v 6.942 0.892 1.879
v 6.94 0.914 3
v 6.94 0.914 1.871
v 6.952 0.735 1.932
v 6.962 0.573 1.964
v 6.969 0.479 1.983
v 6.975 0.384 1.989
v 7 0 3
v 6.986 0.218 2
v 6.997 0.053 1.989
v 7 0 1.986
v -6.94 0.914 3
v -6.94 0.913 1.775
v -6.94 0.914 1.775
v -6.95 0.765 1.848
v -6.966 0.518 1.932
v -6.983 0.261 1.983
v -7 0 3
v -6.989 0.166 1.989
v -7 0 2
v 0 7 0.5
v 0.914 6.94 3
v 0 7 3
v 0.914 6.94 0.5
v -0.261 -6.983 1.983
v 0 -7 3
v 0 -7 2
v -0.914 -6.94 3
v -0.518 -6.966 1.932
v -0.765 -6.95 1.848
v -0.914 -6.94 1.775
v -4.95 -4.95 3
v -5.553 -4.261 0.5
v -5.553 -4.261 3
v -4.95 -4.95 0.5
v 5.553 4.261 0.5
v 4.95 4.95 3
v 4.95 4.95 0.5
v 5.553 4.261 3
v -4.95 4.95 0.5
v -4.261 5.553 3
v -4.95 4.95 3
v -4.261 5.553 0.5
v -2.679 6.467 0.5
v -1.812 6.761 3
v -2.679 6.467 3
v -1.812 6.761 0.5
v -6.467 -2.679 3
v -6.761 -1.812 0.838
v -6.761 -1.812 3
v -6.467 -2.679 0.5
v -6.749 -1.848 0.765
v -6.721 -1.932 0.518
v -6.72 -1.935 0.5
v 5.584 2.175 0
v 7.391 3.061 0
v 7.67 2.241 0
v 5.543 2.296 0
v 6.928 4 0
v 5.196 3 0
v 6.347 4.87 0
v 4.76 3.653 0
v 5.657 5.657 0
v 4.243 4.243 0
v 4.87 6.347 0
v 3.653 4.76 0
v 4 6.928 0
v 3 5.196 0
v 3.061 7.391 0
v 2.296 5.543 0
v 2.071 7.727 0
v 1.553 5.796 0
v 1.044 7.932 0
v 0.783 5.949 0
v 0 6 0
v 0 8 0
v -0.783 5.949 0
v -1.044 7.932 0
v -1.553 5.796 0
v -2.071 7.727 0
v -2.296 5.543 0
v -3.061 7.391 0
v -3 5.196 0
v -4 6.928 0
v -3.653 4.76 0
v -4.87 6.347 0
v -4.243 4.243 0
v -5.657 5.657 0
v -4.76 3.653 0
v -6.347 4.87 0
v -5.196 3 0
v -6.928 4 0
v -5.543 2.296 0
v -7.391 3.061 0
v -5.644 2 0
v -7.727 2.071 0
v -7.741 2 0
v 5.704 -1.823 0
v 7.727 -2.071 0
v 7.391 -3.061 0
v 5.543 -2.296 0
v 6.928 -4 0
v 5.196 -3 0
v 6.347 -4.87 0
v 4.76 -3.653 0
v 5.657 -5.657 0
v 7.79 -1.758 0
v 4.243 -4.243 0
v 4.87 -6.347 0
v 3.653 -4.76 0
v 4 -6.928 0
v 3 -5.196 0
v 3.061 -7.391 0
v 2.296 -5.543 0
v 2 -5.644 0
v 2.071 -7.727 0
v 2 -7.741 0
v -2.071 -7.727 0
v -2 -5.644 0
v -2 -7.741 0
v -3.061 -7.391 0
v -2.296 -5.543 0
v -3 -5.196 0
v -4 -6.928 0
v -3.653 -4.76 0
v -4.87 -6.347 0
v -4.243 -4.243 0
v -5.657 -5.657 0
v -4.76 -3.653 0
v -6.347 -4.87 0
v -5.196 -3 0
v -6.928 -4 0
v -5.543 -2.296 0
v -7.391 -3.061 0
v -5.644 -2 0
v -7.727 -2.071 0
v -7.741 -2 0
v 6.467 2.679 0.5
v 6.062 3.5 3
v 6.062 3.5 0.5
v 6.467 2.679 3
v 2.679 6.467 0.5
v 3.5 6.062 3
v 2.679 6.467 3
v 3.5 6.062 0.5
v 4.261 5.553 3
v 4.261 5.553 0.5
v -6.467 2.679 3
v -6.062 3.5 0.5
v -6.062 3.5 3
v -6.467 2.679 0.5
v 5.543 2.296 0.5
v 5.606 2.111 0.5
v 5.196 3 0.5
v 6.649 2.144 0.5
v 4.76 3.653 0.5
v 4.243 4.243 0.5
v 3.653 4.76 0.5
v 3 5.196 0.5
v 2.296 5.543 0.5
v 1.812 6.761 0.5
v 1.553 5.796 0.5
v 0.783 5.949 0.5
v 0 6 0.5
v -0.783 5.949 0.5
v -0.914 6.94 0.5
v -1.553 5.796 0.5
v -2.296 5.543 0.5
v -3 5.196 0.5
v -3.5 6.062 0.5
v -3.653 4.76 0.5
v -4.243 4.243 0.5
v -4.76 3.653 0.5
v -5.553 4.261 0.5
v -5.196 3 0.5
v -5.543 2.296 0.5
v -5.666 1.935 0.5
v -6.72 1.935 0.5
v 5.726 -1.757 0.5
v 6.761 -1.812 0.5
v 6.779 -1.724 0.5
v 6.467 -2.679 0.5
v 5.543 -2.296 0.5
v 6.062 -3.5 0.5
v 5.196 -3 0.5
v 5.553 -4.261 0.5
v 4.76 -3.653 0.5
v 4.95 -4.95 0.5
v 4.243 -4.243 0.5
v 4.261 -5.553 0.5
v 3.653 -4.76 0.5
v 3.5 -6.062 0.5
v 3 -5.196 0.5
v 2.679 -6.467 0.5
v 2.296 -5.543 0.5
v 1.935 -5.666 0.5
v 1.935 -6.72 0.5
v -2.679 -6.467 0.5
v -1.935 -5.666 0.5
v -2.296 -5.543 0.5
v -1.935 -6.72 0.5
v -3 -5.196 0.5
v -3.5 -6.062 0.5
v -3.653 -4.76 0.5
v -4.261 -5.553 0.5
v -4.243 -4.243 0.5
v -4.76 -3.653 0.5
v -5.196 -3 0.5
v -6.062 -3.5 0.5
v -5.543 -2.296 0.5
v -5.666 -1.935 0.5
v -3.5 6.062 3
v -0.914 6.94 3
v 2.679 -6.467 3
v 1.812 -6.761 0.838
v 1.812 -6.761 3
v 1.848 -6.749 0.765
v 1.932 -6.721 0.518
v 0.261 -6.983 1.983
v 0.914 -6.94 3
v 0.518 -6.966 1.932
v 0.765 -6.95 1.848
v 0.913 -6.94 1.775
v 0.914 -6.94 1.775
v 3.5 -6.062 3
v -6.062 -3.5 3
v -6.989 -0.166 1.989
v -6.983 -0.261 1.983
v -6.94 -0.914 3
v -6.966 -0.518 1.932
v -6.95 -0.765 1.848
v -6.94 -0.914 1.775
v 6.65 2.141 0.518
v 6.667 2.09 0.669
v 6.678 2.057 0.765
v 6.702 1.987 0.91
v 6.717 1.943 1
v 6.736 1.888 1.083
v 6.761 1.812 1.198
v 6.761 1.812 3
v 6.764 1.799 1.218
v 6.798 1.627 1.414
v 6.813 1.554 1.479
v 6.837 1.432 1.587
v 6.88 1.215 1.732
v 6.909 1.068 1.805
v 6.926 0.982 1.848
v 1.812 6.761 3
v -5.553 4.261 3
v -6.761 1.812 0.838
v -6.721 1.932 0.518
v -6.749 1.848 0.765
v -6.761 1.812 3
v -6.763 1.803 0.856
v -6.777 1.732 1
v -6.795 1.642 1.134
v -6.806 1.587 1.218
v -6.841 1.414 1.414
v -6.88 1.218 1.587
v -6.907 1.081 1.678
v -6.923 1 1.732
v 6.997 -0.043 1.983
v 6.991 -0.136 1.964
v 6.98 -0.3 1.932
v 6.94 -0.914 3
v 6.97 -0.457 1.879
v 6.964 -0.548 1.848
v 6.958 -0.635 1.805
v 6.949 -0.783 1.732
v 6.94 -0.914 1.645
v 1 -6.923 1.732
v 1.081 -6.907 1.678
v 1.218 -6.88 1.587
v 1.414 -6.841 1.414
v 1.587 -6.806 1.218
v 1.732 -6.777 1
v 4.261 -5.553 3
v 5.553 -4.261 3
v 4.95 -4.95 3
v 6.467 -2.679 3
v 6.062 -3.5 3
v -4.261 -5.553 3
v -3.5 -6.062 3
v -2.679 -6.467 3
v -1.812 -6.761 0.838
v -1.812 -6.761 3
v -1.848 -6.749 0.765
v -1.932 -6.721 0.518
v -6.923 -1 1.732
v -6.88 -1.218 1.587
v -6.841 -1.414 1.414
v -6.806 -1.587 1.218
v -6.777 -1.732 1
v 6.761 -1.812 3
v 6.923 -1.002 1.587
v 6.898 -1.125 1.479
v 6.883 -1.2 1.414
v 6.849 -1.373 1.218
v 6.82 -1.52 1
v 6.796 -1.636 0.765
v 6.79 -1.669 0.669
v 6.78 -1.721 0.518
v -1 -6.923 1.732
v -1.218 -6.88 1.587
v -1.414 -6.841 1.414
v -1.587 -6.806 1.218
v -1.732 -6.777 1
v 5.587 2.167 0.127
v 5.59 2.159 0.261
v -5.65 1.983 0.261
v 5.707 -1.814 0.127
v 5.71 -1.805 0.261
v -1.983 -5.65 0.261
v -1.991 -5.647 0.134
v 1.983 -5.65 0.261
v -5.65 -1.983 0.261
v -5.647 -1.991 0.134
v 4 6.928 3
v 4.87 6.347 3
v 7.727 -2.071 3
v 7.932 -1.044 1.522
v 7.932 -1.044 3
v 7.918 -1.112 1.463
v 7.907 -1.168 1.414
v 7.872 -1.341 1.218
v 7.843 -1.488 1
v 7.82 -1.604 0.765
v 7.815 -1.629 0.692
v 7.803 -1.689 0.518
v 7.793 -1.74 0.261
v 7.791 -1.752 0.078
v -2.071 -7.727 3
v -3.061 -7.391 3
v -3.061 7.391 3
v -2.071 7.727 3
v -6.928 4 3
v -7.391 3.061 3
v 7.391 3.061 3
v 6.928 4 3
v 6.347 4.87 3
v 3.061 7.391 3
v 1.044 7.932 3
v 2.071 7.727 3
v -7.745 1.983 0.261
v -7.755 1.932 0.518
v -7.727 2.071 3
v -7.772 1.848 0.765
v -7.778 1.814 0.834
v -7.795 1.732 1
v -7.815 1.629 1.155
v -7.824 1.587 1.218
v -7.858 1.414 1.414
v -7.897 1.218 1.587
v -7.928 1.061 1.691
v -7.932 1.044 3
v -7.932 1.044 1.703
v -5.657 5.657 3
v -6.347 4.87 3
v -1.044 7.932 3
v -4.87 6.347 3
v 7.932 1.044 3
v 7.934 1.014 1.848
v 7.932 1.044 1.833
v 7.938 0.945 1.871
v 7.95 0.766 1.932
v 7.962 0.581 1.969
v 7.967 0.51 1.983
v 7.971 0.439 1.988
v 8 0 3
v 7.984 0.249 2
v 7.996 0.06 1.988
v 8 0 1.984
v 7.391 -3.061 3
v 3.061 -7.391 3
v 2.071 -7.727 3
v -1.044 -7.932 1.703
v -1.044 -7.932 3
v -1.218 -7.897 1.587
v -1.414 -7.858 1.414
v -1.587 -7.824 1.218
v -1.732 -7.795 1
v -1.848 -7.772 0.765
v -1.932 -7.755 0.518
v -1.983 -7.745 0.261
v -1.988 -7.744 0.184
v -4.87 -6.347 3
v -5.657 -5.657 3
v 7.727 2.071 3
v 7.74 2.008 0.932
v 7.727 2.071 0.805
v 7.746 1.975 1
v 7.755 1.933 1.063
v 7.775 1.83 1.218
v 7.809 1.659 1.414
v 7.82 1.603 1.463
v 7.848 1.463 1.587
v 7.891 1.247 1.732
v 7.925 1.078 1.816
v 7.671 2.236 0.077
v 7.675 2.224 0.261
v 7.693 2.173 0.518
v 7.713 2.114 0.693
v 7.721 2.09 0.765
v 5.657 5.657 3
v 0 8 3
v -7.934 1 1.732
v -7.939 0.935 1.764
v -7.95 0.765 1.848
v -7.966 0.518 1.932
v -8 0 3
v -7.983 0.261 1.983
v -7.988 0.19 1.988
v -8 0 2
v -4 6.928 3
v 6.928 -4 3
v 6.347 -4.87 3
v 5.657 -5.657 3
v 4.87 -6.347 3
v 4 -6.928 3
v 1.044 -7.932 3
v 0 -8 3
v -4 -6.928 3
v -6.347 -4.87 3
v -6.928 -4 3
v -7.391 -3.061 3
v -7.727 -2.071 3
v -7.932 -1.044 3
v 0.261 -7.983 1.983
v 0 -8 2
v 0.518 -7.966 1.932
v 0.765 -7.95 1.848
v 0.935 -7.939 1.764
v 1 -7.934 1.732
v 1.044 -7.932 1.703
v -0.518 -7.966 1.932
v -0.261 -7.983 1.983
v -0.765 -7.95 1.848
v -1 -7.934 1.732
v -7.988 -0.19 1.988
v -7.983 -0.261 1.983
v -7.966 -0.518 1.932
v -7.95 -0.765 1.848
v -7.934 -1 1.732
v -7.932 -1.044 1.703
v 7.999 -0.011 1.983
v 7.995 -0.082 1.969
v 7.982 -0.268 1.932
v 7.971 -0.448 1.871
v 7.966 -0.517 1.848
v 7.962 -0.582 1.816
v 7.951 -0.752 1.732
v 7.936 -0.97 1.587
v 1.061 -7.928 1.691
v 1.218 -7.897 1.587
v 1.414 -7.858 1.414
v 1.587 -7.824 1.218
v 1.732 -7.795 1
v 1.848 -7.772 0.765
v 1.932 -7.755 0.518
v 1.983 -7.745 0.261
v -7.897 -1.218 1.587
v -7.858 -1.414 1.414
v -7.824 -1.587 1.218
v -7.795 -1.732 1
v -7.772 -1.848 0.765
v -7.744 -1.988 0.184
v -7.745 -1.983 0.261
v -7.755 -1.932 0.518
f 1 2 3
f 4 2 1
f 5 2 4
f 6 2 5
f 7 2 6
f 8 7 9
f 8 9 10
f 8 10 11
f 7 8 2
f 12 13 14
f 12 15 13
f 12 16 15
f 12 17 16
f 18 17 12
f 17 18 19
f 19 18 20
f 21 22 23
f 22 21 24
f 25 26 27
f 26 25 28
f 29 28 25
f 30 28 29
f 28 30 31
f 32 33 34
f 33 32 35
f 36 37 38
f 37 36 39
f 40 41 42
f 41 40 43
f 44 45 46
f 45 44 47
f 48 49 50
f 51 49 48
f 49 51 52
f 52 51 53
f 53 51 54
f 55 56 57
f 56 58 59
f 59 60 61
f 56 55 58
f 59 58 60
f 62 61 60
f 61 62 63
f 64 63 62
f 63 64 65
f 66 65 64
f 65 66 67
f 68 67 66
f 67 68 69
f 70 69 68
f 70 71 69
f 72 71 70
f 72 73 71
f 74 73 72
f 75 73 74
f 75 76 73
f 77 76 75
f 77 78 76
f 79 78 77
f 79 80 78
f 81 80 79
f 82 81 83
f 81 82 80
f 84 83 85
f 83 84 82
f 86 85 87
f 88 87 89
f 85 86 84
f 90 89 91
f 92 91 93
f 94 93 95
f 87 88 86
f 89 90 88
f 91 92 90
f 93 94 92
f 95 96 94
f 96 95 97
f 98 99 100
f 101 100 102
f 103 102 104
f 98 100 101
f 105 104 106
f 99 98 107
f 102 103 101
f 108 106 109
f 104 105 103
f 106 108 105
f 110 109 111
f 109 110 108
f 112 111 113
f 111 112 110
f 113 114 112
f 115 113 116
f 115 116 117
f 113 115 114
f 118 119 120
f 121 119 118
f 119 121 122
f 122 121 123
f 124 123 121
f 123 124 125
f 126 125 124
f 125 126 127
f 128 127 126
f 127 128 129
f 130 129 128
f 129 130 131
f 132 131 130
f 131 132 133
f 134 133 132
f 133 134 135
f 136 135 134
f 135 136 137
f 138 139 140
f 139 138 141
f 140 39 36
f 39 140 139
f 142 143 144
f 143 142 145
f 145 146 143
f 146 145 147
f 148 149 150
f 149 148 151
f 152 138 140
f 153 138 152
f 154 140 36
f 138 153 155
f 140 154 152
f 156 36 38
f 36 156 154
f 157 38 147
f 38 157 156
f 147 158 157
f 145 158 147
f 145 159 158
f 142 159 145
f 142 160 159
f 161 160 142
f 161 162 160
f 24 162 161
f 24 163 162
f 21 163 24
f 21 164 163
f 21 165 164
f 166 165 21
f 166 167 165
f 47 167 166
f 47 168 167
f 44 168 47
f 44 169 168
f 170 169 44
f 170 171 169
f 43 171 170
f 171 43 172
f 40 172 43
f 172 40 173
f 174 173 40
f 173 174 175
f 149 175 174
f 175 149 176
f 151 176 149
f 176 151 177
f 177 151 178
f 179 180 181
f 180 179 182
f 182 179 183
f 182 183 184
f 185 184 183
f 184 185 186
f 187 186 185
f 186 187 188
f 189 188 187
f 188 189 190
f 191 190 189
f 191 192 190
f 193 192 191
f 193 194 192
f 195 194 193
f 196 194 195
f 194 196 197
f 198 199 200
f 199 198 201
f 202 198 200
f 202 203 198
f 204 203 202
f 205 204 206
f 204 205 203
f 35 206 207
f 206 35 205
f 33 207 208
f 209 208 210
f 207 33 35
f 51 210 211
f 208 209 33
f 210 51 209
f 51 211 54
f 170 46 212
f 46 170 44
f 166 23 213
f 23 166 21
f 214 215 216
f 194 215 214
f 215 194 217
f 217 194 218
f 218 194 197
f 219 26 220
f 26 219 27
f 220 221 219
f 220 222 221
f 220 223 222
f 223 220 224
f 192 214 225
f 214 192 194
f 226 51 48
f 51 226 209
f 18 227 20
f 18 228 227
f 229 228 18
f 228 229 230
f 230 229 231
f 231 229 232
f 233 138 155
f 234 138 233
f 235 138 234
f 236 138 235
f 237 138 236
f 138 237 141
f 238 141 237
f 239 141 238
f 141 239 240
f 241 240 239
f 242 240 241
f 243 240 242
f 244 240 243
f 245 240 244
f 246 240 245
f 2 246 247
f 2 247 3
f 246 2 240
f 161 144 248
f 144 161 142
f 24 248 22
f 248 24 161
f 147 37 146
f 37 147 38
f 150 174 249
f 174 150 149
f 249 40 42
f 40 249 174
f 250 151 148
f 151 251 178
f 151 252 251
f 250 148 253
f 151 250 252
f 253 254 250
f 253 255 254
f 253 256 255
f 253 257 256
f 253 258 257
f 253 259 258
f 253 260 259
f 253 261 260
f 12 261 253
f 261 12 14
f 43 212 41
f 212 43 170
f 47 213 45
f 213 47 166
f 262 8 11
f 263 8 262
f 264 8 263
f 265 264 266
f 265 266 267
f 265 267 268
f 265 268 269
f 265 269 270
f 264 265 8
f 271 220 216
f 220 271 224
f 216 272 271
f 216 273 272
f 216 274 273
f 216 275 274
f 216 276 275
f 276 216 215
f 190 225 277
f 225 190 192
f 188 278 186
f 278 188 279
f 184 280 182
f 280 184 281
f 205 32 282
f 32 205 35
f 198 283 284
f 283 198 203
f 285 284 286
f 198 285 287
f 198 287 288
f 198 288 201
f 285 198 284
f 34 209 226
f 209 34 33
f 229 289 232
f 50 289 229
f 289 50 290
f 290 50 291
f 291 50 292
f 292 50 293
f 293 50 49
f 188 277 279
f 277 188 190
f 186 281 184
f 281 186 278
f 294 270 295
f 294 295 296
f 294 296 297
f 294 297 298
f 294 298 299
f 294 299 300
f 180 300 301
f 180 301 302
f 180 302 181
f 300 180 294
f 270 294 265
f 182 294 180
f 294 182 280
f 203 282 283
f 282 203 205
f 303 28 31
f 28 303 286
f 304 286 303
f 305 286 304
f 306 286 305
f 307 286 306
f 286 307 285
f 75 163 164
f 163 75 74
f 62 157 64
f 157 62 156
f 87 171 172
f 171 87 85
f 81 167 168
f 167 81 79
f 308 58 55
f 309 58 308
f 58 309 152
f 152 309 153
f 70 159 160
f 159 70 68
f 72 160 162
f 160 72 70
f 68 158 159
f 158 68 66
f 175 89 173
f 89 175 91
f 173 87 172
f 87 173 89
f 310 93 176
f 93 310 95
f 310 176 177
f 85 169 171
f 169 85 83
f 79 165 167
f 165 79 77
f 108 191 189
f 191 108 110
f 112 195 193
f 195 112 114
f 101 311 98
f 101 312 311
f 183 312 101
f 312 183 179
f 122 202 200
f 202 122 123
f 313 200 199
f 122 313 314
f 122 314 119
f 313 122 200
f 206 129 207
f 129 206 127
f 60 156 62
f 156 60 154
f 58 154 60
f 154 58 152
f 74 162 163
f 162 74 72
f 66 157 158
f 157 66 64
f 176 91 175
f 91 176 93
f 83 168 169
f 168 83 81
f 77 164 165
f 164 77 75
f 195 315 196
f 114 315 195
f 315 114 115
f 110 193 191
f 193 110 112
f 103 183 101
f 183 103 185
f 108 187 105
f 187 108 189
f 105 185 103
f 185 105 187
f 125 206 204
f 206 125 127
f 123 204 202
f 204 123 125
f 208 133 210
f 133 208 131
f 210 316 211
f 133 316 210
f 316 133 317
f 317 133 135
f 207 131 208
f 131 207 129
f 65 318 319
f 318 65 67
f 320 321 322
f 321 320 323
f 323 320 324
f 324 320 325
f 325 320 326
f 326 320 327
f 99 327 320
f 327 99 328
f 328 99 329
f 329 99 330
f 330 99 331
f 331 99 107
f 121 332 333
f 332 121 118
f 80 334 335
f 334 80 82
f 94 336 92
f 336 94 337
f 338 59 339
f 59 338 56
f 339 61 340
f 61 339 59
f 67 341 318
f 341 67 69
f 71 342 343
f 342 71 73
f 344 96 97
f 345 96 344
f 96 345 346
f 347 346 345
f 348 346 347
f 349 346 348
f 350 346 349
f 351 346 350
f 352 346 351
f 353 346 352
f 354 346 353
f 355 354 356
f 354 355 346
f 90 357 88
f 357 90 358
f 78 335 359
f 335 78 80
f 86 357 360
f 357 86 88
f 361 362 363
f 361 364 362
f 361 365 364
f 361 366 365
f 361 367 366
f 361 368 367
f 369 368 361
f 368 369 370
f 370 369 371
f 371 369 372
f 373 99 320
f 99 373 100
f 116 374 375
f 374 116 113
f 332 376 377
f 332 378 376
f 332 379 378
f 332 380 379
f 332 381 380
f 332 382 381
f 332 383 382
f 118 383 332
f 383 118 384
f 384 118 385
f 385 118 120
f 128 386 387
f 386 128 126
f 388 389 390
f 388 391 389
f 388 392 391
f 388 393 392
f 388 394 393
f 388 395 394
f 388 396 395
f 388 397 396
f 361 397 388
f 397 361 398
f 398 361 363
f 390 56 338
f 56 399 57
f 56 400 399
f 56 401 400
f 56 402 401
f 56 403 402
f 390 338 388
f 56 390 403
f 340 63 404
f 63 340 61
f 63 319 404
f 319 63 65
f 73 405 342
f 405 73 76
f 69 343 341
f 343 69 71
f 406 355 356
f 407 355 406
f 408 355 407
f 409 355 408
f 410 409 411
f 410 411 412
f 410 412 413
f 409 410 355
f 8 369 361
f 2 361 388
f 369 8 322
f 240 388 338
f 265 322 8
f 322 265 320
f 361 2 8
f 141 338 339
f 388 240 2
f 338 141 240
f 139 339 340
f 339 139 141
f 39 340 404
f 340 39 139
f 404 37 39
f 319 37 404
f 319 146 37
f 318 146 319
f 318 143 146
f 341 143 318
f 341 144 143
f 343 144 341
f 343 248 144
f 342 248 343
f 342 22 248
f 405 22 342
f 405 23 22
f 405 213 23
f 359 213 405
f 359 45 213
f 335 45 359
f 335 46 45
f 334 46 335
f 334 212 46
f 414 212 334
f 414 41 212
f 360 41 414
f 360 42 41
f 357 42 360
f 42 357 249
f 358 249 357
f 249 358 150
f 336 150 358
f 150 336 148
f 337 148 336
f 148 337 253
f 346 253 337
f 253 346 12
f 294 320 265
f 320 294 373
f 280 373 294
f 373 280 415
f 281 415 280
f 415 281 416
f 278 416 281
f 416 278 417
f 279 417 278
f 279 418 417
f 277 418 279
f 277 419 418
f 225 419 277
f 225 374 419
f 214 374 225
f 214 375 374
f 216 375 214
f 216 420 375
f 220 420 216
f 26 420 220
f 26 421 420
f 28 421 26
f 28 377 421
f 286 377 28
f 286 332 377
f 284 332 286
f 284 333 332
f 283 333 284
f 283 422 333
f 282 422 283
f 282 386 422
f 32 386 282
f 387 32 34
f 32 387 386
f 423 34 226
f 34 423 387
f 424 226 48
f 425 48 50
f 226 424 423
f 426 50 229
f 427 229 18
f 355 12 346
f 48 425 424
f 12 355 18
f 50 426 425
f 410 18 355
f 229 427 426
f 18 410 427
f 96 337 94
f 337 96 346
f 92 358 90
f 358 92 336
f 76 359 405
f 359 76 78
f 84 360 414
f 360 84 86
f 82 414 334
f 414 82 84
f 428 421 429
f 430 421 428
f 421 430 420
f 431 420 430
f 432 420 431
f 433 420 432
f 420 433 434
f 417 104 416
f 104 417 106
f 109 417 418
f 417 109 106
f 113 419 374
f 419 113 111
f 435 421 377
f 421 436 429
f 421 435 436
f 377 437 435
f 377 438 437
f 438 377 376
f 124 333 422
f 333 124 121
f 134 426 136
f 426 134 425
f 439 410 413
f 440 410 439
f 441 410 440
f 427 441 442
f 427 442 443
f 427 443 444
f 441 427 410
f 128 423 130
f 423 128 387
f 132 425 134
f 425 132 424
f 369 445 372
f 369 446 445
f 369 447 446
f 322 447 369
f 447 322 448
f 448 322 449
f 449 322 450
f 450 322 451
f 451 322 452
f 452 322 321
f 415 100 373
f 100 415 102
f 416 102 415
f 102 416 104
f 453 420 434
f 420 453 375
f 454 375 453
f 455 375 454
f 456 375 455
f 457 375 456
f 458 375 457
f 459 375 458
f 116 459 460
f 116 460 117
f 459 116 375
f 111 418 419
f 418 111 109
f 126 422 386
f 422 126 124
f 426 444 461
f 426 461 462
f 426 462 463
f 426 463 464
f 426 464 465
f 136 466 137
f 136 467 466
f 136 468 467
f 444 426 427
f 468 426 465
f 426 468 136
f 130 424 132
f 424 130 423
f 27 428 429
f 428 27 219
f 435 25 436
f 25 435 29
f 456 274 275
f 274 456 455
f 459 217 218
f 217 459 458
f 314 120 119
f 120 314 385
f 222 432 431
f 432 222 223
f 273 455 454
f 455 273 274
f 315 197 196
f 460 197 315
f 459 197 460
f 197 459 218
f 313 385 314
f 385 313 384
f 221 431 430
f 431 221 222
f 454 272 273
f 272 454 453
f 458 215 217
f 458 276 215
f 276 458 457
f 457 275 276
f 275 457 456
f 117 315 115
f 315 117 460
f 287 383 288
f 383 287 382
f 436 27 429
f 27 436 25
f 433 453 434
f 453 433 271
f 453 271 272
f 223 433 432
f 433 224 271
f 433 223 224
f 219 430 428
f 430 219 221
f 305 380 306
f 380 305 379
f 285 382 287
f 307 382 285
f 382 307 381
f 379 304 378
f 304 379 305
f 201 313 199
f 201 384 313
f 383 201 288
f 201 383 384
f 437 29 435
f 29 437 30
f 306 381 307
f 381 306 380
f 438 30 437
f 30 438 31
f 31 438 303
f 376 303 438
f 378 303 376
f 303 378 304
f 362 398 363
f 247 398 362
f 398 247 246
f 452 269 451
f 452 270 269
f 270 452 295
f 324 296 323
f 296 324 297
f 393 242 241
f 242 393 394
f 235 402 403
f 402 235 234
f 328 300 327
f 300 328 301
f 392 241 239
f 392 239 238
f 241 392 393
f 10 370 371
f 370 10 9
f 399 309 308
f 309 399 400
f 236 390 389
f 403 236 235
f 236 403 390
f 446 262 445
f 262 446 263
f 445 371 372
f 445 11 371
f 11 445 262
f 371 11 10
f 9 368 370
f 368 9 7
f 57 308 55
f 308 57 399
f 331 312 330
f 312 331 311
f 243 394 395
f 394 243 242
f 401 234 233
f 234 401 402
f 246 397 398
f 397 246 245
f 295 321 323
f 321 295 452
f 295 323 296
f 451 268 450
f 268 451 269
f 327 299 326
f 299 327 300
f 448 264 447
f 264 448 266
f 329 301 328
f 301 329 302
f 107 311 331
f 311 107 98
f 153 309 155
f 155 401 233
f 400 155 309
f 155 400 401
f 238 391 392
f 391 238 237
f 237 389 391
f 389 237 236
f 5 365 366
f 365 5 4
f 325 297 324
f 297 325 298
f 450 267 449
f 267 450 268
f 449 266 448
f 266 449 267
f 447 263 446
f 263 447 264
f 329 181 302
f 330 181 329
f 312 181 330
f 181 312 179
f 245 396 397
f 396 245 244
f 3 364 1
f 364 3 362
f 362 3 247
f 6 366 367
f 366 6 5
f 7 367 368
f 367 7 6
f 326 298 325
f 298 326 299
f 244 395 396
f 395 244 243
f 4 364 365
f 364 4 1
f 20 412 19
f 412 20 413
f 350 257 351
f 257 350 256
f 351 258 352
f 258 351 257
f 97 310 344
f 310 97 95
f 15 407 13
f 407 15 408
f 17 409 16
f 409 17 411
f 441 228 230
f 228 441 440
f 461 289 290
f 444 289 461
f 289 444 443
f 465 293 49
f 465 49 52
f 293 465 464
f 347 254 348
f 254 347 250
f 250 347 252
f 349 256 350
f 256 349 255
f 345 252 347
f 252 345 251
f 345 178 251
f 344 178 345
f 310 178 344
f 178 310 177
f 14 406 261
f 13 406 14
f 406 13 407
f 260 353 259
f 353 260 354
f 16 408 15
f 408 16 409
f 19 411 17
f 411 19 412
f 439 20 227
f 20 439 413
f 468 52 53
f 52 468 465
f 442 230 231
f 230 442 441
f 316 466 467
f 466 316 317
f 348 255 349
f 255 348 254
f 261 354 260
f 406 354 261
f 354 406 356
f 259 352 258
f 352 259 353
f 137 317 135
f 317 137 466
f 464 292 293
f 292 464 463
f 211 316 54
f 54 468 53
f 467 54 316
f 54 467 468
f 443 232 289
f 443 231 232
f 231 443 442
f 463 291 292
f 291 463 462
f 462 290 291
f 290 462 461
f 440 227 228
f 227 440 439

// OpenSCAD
// file: ../build_environments.scad
// build_environments.scad: modules to build level sections
//

module pool(diameter=10.0, wall_height=2.0, step_width=3.0, connections=[])
{
    difference() {
        union() {
        difference() {
            cylinder(h=0.5,r1=diameter+step_width,r2=diameter+step_width,$fn=48);
            translate([0,0,-0.1])
                cylinder(h=0.7,r1=diameter,r2=diameter,$fn=48);
        }
        difference() {
            cylinder(h=wall_height,r1=diameter+step_width+1.0,r2=diameter+step_width+1.0,$fn=48);
            translate([0,0,-0.1])
                cylinder(h=wall_height+0.2,r1=diameter+step_width,r2=diameter+step_width,$fn=48);
        }
        }
    
        for (c = connections)
        {
            rotate([0,90,0]) {
                angle = atan2(c[1],c[0]);
                rotate([-angle,0,0]) {
                    cylinder(h=diameter+5.0,r1=c[2],r2=c[2],$fn=48);
                }
            }
        }
    }
}

module straight(length=10.0, width=2.0, dy1=0.0, dy2=0.0, dz=0.0)
{
    dims = [0, 0, 0, 0, 0, (dz/length)];
    matrix = [
        [ 1, dims[0], dims[1], 0 ],
        [ dims[2], 1, dims[4], 0 ],
        [ dims[5], dims[3], 1, 0 ],
        [ 0, 0, 0, 1 ]
    ];
    multmatrix(matrix)
    difference() {
        translate([dy1,0,0])
        union() {
            rotate([0,90,0]) {
                difference() {
                    cylinder(h=(length-dy1-dy2),r1=width+1.0,r2=width+1.0,$fn=24);
                    translate([0,0,-0.1])
                        cylinder(h=(length-dy1-dy2+0.2),r1=width,r2=width,$fn=24);
                }
                difference() {
                    cylinder(h=1.0,r1=width+2.0,r2=width+2.0,$fn=24);
                    translate([0,0,-0.1])
                        cylinder(h=1.2,r1=width,r2=width,$fn=24);
                }
                translate([0,0,(length-dy1-dy2)-1.0]) {
                    difference() {
                        cylinder(h=1.0,r1=width+2.0,r2=width+2.0,$fn=24);
                        translate([0,0,-0.1])
                            cylinder(h=1.2,r1=width,r2=width,$fn=24);
                    }
                }
            }
        }
        translate([0,0,-(2*width+4.0)/2])
            cube([3*length,3*length,2*width+4.0],center=true);
    }
}

module curve(p0=[0,0], center=[0,0], dir=1, angle=0.0, width=2.0)
{
    radius = sqrt((p0[0]-center[0])*(p0[0]-center[0]) + (p0[1]-center[1])*(p0[1]-center[1]));
    if (dir == 0) {
        difference() {
            rotate([0,0,-90])
            difference() {
                rotate_extrude(angle = angle, convexity = 10, $fn=32)
                    translate([radius, 0, 0])
                        circle(r = width+1.0,$fn=24);
                rotate([0,0,-1.0])
                    rotate_extrude(angle = angle+2.0, convexity = 10, $fn=32)
                        translate([radius, 0, 0])
                            circle(r = width,$fn=24);
            }
            translate([0,0,-(2*width+4.0)/2])
                cube([5*radius,5*radius,2*width+4.0],center=true);
        }
    }
    else {
        difference() {
            rotate([0,0,90])
            difference() {
                rotate_extrude(angle = -angle, convexity = 10, $fn=32)
                    translate([radius, 0, 0])
                        circle(r = width+1.0,$fn=24);
                rotate([0,0,1.0])
                    rotate_extrude(angle = -angle-2.0, convexity = 10, $fn=32)
                        translate([radius, 0, 0])
                            circle(r = width,$fn=24);
            }
            translate([0,0,-(2*width+4.0)/2])
                cube([5*radius,5*radius,2*width+4.0],center=true);
        }
    }

}

// test pool
//pool(diameter=12.0000, wall_height=3.0000, step_width=3.0000, connections=[[0.0000,-26.0000,2.0000], [23.6074,0.0000,2.0000]]);

// test straight, slope
//straight(length=26.0000, width=2.0000, dy1=11.8322, dy2=6.7082, dz=0.0000);
//straight(length=29.1549, width=12.0000, dy1=0.0000, dy2=0.0000, dz=-15.0000);

// test curve
//curve(p0=[23.6074, 0.0000], center=[23.6074, 5.0000], dir=0, angle=60.1011, width=2.0000);
//curve(p0=[33.6426, 12.4219], center=[37.9771, 9.9295], dir=1, angle=120.4627, width=2.0000);
// main file
use <../build_environments.scad>;
pool(diameter=6.0000, wall_height=3.0000, step_width=1.0000, connections=[[0.0000,-17.0000,2.0000], [8.7814,0.2744,2.0000], [-20.0000,0.0000,2.0000]]);
